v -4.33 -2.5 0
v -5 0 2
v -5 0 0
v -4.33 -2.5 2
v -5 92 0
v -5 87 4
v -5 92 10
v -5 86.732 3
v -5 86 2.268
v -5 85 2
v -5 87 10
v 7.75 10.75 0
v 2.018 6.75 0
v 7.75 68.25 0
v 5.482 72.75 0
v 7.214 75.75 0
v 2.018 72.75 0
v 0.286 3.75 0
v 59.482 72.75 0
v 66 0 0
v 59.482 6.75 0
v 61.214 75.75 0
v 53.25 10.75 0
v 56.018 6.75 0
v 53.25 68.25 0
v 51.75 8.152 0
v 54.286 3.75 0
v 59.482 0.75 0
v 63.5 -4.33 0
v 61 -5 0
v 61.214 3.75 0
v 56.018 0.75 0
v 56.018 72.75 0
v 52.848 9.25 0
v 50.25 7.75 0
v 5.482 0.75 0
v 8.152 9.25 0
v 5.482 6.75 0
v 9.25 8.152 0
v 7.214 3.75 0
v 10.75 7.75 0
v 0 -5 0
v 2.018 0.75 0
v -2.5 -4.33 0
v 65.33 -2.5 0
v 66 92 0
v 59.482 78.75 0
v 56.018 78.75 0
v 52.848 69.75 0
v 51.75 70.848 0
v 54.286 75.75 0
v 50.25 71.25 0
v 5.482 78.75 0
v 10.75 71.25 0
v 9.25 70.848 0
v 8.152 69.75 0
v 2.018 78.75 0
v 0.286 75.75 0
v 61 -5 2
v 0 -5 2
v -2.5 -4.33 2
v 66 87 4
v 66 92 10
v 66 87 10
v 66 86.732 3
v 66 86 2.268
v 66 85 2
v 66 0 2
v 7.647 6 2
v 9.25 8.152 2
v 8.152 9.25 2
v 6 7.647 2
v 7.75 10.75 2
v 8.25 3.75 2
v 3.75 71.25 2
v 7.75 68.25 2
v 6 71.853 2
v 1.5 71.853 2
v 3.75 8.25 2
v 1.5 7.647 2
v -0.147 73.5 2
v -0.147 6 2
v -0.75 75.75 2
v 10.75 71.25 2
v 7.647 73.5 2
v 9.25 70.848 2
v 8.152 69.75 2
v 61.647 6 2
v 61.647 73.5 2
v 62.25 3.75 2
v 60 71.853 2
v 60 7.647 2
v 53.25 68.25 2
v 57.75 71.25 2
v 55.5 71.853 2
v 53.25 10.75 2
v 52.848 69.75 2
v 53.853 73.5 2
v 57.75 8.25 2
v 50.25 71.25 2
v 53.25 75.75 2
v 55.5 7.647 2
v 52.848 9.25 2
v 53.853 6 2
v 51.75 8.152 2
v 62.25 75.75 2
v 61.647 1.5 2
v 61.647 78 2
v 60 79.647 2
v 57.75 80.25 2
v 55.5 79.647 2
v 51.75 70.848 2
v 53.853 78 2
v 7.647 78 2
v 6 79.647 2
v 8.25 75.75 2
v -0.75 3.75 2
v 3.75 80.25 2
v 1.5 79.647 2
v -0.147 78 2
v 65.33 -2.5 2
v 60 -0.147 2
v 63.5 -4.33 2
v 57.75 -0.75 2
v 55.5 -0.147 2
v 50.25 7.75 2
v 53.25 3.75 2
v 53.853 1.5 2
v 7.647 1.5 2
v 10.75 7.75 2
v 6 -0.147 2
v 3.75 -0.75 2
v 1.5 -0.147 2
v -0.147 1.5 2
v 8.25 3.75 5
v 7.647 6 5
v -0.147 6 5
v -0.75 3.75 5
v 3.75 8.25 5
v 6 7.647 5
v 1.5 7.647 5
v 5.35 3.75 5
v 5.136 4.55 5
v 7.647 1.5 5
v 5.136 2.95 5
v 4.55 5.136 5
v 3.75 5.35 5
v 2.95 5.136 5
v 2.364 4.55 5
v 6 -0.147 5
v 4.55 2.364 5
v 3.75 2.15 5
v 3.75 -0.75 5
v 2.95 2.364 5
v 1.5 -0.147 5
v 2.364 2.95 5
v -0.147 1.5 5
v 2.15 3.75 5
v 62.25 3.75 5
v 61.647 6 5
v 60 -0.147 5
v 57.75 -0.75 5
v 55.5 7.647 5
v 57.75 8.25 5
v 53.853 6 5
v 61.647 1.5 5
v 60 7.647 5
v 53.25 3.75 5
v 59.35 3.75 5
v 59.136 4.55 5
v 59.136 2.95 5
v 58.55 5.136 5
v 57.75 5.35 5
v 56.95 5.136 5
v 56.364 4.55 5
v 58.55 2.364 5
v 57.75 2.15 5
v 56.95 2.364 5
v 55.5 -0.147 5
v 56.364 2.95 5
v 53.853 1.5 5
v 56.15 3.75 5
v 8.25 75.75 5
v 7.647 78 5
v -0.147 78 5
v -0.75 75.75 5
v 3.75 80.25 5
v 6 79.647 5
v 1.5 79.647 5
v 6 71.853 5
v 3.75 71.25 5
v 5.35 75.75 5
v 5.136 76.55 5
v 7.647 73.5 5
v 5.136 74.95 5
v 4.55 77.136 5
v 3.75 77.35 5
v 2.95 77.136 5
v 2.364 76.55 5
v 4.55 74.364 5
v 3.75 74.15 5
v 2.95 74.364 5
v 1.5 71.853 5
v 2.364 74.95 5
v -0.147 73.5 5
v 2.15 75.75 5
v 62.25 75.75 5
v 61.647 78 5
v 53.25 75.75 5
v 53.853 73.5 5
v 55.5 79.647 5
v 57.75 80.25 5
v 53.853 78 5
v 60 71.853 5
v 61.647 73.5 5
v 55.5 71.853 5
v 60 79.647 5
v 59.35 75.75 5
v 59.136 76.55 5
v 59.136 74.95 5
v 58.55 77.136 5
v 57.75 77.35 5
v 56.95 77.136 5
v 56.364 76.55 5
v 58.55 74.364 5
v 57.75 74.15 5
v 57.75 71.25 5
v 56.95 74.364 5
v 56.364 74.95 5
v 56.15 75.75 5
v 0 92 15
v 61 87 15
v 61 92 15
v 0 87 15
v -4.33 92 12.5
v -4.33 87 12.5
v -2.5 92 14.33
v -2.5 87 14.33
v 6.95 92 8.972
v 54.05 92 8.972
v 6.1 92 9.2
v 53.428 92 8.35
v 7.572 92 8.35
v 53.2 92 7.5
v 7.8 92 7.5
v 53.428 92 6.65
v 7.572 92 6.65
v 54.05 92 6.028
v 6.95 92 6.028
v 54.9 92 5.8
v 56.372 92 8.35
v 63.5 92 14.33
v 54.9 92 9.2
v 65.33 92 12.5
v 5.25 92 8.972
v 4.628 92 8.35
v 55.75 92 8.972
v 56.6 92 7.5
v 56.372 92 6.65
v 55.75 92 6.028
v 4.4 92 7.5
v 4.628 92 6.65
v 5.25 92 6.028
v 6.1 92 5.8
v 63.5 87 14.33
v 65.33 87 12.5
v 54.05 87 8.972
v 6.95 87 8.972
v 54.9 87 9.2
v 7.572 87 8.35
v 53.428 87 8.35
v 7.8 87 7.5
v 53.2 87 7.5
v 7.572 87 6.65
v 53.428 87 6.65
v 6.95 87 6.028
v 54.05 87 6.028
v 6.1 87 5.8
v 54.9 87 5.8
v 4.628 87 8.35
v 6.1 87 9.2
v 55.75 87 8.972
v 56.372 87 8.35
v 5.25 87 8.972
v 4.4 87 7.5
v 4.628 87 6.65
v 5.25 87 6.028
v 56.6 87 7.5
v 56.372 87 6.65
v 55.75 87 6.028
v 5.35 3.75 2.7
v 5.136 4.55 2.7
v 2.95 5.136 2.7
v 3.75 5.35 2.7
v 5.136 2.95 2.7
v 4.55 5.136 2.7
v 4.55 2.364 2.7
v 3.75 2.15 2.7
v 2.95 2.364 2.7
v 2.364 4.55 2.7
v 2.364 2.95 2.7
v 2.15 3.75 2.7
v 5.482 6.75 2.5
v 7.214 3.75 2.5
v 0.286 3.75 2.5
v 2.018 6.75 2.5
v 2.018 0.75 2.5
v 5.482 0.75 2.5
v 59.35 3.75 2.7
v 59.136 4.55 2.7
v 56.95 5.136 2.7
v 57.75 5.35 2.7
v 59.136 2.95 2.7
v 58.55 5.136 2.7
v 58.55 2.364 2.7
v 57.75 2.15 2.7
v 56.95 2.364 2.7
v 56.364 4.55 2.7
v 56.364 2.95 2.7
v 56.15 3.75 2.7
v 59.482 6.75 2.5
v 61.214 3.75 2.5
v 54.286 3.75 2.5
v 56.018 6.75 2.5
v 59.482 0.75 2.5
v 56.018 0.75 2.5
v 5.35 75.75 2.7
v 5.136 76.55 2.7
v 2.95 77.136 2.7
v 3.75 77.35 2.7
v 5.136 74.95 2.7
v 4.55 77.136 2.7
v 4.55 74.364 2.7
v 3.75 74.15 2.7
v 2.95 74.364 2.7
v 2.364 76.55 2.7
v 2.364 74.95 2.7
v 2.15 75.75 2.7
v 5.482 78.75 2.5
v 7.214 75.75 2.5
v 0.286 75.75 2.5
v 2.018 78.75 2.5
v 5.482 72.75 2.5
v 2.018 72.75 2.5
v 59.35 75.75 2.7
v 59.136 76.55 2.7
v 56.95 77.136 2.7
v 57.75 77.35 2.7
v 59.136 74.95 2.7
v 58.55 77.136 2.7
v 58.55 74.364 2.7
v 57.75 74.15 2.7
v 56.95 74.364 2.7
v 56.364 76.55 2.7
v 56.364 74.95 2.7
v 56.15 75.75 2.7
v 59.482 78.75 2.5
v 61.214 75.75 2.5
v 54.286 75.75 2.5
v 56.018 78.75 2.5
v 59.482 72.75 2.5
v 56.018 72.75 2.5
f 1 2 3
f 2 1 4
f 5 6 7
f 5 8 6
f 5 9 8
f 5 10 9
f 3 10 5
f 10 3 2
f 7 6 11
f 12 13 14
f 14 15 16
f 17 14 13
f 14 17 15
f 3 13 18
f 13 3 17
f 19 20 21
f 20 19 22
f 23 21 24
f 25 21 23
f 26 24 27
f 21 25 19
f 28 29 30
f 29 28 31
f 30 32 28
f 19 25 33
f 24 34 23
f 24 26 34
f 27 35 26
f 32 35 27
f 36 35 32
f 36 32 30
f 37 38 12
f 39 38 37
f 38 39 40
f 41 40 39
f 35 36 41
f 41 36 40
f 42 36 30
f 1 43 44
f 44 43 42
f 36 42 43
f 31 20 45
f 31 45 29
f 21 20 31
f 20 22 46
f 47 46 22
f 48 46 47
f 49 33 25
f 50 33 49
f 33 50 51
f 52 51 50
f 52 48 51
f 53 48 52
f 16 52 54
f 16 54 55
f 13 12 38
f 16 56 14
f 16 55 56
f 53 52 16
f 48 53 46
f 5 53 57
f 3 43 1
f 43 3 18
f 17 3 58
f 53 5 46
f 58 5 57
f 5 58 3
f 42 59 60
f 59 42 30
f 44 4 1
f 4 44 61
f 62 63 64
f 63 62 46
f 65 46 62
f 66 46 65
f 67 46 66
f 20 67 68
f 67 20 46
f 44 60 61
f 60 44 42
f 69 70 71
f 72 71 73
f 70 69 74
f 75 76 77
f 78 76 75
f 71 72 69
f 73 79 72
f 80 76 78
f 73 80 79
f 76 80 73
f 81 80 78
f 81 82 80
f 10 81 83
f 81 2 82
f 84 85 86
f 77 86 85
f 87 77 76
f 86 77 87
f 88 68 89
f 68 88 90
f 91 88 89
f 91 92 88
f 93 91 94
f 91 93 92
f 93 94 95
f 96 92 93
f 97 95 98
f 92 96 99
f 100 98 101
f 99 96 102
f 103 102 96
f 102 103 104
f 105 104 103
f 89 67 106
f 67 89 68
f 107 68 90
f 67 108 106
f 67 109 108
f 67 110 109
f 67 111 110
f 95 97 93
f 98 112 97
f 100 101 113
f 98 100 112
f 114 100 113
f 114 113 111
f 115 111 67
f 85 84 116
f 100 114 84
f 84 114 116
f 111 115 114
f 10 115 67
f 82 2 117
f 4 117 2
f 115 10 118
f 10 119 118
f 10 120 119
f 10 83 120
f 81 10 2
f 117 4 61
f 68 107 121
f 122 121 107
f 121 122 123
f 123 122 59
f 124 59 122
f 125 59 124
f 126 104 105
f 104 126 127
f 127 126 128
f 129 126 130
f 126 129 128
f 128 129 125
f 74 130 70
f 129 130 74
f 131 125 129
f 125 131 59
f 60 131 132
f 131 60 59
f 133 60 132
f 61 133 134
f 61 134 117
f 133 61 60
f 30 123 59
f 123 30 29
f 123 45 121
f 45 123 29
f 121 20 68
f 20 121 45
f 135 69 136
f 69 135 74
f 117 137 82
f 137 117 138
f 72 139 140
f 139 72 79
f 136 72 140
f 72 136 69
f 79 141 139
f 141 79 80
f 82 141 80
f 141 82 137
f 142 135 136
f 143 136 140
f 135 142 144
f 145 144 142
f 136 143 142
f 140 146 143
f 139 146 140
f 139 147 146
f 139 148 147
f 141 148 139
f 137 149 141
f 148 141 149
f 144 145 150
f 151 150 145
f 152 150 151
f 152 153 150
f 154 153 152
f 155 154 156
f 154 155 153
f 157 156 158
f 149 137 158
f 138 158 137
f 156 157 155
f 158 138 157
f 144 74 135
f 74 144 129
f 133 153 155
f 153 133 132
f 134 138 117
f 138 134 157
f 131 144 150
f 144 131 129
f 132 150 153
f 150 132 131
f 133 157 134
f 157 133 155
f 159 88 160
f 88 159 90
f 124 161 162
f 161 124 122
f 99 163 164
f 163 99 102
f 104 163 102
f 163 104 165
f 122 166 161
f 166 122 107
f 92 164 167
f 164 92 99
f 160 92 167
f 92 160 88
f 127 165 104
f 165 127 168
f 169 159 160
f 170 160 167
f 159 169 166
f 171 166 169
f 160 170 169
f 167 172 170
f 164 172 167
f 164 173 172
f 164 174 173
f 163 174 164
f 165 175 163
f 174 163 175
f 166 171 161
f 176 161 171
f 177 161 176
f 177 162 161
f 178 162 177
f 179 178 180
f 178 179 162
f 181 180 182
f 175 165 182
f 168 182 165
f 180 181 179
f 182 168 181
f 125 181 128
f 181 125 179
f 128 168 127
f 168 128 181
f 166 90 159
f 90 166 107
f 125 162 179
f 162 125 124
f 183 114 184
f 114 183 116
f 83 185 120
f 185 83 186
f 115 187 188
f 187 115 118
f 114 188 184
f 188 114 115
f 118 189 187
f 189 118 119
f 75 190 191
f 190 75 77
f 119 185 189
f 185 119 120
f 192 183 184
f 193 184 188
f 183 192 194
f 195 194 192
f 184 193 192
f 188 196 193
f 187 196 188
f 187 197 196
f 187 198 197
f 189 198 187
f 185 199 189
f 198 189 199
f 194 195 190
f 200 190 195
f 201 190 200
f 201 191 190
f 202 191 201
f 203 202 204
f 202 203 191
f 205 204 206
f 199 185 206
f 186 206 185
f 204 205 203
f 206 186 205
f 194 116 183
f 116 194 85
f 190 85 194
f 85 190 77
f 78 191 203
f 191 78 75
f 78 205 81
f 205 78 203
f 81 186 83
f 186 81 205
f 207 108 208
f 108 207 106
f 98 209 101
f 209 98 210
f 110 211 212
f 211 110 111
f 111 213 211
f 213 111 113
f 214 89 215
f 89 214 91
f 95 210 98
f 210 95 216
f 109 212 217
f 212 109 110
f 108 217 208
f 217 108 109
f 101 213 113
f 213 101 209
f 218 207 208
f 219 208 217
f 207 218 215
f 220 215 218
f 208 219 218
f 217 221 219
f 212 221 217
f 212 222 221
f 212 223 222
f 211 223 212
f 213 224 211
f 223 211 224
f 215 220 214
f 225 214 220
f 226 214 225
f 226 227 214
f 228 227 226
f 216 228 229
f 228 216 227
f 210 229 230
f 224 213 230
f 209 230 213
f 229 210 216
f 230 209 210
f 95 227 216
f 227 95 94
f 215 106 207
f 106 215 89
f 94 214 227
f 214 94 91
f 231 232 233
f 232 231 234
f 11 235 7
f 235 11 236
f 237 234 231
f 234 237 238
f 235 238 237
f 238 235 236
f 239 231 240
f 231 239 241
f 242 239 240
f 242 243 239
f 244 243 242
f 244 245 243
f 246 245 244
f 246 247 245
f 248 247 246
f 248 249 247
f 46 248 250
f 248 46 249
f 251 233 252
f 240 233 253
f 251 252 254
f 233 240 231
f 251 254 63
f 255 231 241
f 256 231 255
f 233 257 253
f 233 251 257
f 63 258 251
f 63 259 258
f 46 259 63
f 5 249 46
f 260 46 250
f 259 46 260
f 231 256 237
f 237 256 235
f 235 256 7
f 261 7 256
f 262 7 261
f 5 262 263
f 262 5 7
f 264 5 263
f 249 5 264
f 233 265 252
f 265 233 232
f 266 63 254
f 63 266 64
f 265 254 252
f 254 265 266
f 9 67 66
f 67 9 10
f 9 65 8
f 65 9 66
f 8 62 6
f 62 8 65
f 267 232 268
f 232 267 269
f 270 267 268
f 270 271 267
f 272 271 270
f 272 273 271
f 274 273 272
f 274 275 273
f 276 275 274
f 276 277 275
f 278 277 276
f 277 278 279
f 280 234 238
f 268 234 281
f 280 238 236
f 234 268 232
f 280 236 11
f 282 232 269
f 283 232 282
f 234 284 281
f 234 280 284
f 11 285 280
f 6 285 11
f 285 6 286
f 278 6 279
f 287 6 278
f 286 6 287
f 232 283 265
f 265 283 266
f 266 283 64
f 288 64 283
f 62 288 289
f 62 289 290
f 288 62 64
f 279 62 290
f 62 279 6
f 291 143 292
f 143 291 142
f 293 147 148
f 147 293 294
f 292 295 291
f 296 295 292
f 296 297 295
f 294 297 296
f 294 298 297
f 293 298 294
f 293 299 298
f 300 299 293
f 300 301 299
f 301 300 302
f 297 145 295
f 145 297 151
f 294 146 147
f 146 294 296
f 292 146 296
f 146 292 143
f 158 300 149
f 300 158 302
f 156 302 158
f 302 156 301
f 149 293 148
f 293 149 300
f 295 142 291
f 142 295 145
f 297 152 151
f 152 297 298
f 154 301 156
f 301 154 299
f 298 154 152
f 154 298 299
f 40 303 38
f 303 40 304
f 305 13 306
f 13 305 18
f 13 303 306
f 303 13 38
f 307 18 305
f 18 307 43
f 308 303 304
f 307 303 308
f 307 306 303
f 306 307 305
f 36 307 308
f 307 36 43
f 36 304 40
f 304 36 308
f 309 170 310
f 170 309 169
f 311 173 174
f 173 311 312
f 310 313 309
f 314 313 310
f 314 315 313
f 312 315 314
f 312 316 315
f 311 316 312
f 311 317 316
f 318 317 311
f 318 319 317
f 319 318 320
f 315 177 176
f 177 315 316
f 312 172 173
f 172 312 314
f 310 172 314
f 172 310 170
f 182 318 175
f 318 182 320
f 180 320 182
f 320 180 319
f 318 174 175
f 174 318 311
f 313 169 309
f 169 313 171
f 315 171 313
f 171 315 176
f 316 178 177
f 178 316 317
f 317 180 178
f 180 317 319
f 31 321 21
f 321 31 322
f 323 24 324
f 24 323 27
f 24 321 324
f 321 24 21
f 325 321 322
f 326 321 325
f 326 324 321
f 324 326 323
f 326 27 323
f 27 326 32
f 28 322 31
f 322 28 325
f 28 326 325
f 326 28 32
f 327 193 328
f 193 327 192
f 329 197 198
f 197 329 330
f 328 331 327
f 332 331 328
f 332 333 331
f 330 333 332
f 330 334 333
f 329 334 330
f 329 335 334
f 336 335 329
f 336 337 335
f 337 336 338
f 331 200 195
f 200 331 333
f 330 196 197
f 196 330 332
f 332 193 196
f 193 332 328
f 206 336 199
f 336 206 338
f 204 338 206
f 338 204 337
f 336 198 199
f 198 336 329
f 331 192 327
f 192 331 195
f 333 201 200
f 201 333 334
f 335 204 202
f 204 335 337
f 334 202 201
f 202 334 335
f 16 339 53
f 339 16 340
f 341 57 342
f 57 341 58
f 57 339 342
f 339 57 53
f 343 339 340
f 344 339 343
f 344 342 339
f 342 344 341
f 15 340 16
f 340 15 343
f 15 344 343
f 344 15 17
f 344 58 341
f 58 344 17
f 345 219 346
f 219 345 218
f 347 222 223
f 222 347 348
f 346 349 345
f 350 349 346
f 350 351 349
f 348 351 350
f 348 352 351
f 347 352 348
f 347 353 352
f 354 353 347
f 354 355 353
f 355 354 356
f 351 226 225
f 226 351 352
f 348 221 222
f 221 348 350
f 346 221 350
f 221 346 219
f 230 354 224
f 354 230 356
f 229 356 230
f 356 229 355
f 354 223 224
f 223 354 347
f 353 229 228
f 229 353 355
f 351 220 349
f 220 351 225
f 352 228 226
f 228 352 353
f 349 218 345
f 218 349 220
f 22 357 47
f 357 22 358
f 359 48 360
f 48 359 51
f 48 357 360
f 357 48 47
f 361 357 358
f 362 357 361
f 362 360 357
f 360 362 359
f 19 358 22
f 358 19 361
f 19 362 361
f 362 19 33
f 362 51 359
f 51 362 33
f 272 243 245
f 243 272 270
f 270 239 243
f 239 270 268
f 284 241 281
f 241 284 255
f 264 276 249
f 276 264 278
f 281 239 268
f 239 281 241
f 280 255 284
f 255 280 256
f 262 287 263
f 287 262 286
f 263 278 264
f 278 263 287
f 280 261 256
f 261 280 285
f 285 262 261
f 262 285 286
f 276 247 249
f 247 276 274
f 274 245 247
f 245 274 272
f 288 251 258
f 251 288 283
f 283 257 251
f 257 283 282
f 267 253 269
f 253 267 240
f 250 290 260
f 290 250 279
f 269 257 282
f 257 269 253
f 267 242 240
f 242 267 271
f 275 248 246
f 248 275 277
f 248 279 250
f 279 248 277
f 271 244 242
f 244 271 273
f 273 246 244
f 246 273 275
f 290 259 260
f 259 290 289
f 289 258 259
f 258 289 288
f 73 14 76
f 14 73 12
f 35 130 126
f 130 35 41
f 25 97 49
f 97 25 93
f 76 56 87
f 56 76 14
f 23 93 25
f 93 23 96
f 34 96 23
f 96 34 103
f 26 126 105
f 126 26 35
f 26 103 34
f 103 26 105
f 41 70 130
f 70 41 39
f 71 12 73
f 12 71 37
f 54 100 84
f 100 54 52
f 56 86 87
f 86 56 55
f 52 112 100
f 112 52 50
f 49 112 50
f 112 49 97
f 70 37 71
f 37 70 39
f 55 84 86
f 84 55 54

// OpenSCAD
// JellyB Tech 12th November 2013
// Play with at your own peril...

base_length =61;
base_width  =80;
m3_bolt_diameter =1.6;
m3_nut_size = 6;
m3_nut_height = 2.5;
initial_hole_offset = 3.75;
x_hole_offset = 54;
y_hole_offset = 72;
extrusion_height = 15;
$fn=12;

difference(){
	union(){
		base();
		rear_mount();
		}
	board_holes();
	extrusion_holes();
	cut_centre();
}

// Centre cutout

module cut_centre(){
	hull(){
		translate(v=[initial_hole_offset + 7,initial_hole_offset + 7,0])
		cylinder(r=3,h=4);
		translate(v=[x_hole_offset - initial_hole_offset,initial_hole_offset + 7,0])
		cylinder(r=3,h=4);
		translate(v=[x_hole_offset - initial_hole_offset,y_hole_offset - initial_hole_offset,0])
		cylinder(r=3,h=4);
		translate(v=[initial_hole_offset + 7,y_hole_offset - initial_hole_offset,0])
		cylinder(r=3,h=4);
		}
}
	
// Extrusion mount holes

module extrusion_holes(){
	translate(v=[base_length * 0.1,base_width + 13,extrusion_height/2])
	rotate(a=[90,0,0])
	cylinder(r=m3_bolt_diameter +0.1 ,h=7);
	translate(v=[base_length * 0.9,base_width + 13,extrusion_height/2])
	rotate(a=[90,0,0])
	cylinder(r=m3_bolt_diameter +0.1 ,h=7);
}

// Printrboard mount holes

module board_holes(){
	translate(v=[initial_hole_offset,initial_hole_offset,m3_nut_height + 0.2])
	cylinder(r=m3_bolt_diameter,h=6);
	translate(v=[initial_hole_offset,initial_hole_offset,0])
	cylinder(r=m3_nut_size / 2 / cos(180 / 6),h=m3_nut_height, $fn=6);
	translate(v=[initial_hole_offset + x_hole_offset,initial_hole_offset,m3_nut_height + 0.2])
	cylinder(r=m3_bolt_diameter,h=6);
	translate(v=[initial_hole_offset + x_hole_offset,initial_hole_offset,0])
	cylinder(r=m3_nut_size / 2 / cos(180 / 6),h=m3_nut_height, $fn=6);
	translate(v=[initial_hole_offset,initial_hole_offset + y_hole_offset,m3_nut_height + 0.2])
	cylinder(r=m3_bolt_diameter,h=6);
	translate(v=[initial_hole_offset,initial_hole_offset + y_hole_offset,0])
	cylinder(r=m3_nut_size / 2 / cos(180 / 6),h=m3_nut_height, $fn=6);
	translate(v=[initial_hole_offset + x_hole_offset,initial_hole_offset + y_hole_offset,m3_nut_height + 0.2])
	cylinder(r=m3_bolt_diameter,h=6);
	translate(v=[initial_hole_offset + x_hole_offset,initial_hole_offset + y_hole_offset,0])
	cylinder(r=m3_nut_size / 2 / cos(180 / 6),h=m3_nut_height, $fn=6);
}

// Base
module base(){
	hull(){
		cylinder(r=5,h=2);
		translate(v=[base_length,0,0])
		cylinder(r=5,h=2);
		translate(v=[-5,base_width-1,0])
		cube(size=[base_length + 10,6,2]);
		}
	translate(v=[initial_hole_offset,initial_hole_offset,0])
	cylinder(r=4.5,h=5);
	translate(v=[initial_hole_offset + x_hole_offset,initial_hole_offset,0])
	cylinder(r=4.5,h=5);
	translate(v=[initial_hole_offset,initial_hole_offset + y_hole_offset,0])
	cylinder(r=4.5,h=5);
	translate(v=[initial_hole_offset + x_hole_offset,initial_hole_offset + y_hole_offset,0])
	cylinder(r=4.5,h=5);
}

// Rear Mount
module rear_mount(){
	difference(){
		hull(){
			translate(v=[-5,base_width + 5,0])
			cube(size=[base_length + 10,7,extrusion_height - 5]);
			translate(v=[0,base_width + 12,extrusion_height - 5])
			rotate(a=[90,0,0])
			cylinder(r=5,h=5);
			translate(v=[base_length,base_width + 12,extrusion_height - 5])
			rotate(a=[90,0,0])
			cylinder(r=5,h=5);
			}
		translate(v=[-6,base_width + 5,4])
		rotate(a=[0,90,0])
		cylinder(r=2,h=base_length + 15);
		translate(v=[-6,base_width + 2,4])
		cube(size=[base_length + 15,5,extrusion_height]);
		}
}
